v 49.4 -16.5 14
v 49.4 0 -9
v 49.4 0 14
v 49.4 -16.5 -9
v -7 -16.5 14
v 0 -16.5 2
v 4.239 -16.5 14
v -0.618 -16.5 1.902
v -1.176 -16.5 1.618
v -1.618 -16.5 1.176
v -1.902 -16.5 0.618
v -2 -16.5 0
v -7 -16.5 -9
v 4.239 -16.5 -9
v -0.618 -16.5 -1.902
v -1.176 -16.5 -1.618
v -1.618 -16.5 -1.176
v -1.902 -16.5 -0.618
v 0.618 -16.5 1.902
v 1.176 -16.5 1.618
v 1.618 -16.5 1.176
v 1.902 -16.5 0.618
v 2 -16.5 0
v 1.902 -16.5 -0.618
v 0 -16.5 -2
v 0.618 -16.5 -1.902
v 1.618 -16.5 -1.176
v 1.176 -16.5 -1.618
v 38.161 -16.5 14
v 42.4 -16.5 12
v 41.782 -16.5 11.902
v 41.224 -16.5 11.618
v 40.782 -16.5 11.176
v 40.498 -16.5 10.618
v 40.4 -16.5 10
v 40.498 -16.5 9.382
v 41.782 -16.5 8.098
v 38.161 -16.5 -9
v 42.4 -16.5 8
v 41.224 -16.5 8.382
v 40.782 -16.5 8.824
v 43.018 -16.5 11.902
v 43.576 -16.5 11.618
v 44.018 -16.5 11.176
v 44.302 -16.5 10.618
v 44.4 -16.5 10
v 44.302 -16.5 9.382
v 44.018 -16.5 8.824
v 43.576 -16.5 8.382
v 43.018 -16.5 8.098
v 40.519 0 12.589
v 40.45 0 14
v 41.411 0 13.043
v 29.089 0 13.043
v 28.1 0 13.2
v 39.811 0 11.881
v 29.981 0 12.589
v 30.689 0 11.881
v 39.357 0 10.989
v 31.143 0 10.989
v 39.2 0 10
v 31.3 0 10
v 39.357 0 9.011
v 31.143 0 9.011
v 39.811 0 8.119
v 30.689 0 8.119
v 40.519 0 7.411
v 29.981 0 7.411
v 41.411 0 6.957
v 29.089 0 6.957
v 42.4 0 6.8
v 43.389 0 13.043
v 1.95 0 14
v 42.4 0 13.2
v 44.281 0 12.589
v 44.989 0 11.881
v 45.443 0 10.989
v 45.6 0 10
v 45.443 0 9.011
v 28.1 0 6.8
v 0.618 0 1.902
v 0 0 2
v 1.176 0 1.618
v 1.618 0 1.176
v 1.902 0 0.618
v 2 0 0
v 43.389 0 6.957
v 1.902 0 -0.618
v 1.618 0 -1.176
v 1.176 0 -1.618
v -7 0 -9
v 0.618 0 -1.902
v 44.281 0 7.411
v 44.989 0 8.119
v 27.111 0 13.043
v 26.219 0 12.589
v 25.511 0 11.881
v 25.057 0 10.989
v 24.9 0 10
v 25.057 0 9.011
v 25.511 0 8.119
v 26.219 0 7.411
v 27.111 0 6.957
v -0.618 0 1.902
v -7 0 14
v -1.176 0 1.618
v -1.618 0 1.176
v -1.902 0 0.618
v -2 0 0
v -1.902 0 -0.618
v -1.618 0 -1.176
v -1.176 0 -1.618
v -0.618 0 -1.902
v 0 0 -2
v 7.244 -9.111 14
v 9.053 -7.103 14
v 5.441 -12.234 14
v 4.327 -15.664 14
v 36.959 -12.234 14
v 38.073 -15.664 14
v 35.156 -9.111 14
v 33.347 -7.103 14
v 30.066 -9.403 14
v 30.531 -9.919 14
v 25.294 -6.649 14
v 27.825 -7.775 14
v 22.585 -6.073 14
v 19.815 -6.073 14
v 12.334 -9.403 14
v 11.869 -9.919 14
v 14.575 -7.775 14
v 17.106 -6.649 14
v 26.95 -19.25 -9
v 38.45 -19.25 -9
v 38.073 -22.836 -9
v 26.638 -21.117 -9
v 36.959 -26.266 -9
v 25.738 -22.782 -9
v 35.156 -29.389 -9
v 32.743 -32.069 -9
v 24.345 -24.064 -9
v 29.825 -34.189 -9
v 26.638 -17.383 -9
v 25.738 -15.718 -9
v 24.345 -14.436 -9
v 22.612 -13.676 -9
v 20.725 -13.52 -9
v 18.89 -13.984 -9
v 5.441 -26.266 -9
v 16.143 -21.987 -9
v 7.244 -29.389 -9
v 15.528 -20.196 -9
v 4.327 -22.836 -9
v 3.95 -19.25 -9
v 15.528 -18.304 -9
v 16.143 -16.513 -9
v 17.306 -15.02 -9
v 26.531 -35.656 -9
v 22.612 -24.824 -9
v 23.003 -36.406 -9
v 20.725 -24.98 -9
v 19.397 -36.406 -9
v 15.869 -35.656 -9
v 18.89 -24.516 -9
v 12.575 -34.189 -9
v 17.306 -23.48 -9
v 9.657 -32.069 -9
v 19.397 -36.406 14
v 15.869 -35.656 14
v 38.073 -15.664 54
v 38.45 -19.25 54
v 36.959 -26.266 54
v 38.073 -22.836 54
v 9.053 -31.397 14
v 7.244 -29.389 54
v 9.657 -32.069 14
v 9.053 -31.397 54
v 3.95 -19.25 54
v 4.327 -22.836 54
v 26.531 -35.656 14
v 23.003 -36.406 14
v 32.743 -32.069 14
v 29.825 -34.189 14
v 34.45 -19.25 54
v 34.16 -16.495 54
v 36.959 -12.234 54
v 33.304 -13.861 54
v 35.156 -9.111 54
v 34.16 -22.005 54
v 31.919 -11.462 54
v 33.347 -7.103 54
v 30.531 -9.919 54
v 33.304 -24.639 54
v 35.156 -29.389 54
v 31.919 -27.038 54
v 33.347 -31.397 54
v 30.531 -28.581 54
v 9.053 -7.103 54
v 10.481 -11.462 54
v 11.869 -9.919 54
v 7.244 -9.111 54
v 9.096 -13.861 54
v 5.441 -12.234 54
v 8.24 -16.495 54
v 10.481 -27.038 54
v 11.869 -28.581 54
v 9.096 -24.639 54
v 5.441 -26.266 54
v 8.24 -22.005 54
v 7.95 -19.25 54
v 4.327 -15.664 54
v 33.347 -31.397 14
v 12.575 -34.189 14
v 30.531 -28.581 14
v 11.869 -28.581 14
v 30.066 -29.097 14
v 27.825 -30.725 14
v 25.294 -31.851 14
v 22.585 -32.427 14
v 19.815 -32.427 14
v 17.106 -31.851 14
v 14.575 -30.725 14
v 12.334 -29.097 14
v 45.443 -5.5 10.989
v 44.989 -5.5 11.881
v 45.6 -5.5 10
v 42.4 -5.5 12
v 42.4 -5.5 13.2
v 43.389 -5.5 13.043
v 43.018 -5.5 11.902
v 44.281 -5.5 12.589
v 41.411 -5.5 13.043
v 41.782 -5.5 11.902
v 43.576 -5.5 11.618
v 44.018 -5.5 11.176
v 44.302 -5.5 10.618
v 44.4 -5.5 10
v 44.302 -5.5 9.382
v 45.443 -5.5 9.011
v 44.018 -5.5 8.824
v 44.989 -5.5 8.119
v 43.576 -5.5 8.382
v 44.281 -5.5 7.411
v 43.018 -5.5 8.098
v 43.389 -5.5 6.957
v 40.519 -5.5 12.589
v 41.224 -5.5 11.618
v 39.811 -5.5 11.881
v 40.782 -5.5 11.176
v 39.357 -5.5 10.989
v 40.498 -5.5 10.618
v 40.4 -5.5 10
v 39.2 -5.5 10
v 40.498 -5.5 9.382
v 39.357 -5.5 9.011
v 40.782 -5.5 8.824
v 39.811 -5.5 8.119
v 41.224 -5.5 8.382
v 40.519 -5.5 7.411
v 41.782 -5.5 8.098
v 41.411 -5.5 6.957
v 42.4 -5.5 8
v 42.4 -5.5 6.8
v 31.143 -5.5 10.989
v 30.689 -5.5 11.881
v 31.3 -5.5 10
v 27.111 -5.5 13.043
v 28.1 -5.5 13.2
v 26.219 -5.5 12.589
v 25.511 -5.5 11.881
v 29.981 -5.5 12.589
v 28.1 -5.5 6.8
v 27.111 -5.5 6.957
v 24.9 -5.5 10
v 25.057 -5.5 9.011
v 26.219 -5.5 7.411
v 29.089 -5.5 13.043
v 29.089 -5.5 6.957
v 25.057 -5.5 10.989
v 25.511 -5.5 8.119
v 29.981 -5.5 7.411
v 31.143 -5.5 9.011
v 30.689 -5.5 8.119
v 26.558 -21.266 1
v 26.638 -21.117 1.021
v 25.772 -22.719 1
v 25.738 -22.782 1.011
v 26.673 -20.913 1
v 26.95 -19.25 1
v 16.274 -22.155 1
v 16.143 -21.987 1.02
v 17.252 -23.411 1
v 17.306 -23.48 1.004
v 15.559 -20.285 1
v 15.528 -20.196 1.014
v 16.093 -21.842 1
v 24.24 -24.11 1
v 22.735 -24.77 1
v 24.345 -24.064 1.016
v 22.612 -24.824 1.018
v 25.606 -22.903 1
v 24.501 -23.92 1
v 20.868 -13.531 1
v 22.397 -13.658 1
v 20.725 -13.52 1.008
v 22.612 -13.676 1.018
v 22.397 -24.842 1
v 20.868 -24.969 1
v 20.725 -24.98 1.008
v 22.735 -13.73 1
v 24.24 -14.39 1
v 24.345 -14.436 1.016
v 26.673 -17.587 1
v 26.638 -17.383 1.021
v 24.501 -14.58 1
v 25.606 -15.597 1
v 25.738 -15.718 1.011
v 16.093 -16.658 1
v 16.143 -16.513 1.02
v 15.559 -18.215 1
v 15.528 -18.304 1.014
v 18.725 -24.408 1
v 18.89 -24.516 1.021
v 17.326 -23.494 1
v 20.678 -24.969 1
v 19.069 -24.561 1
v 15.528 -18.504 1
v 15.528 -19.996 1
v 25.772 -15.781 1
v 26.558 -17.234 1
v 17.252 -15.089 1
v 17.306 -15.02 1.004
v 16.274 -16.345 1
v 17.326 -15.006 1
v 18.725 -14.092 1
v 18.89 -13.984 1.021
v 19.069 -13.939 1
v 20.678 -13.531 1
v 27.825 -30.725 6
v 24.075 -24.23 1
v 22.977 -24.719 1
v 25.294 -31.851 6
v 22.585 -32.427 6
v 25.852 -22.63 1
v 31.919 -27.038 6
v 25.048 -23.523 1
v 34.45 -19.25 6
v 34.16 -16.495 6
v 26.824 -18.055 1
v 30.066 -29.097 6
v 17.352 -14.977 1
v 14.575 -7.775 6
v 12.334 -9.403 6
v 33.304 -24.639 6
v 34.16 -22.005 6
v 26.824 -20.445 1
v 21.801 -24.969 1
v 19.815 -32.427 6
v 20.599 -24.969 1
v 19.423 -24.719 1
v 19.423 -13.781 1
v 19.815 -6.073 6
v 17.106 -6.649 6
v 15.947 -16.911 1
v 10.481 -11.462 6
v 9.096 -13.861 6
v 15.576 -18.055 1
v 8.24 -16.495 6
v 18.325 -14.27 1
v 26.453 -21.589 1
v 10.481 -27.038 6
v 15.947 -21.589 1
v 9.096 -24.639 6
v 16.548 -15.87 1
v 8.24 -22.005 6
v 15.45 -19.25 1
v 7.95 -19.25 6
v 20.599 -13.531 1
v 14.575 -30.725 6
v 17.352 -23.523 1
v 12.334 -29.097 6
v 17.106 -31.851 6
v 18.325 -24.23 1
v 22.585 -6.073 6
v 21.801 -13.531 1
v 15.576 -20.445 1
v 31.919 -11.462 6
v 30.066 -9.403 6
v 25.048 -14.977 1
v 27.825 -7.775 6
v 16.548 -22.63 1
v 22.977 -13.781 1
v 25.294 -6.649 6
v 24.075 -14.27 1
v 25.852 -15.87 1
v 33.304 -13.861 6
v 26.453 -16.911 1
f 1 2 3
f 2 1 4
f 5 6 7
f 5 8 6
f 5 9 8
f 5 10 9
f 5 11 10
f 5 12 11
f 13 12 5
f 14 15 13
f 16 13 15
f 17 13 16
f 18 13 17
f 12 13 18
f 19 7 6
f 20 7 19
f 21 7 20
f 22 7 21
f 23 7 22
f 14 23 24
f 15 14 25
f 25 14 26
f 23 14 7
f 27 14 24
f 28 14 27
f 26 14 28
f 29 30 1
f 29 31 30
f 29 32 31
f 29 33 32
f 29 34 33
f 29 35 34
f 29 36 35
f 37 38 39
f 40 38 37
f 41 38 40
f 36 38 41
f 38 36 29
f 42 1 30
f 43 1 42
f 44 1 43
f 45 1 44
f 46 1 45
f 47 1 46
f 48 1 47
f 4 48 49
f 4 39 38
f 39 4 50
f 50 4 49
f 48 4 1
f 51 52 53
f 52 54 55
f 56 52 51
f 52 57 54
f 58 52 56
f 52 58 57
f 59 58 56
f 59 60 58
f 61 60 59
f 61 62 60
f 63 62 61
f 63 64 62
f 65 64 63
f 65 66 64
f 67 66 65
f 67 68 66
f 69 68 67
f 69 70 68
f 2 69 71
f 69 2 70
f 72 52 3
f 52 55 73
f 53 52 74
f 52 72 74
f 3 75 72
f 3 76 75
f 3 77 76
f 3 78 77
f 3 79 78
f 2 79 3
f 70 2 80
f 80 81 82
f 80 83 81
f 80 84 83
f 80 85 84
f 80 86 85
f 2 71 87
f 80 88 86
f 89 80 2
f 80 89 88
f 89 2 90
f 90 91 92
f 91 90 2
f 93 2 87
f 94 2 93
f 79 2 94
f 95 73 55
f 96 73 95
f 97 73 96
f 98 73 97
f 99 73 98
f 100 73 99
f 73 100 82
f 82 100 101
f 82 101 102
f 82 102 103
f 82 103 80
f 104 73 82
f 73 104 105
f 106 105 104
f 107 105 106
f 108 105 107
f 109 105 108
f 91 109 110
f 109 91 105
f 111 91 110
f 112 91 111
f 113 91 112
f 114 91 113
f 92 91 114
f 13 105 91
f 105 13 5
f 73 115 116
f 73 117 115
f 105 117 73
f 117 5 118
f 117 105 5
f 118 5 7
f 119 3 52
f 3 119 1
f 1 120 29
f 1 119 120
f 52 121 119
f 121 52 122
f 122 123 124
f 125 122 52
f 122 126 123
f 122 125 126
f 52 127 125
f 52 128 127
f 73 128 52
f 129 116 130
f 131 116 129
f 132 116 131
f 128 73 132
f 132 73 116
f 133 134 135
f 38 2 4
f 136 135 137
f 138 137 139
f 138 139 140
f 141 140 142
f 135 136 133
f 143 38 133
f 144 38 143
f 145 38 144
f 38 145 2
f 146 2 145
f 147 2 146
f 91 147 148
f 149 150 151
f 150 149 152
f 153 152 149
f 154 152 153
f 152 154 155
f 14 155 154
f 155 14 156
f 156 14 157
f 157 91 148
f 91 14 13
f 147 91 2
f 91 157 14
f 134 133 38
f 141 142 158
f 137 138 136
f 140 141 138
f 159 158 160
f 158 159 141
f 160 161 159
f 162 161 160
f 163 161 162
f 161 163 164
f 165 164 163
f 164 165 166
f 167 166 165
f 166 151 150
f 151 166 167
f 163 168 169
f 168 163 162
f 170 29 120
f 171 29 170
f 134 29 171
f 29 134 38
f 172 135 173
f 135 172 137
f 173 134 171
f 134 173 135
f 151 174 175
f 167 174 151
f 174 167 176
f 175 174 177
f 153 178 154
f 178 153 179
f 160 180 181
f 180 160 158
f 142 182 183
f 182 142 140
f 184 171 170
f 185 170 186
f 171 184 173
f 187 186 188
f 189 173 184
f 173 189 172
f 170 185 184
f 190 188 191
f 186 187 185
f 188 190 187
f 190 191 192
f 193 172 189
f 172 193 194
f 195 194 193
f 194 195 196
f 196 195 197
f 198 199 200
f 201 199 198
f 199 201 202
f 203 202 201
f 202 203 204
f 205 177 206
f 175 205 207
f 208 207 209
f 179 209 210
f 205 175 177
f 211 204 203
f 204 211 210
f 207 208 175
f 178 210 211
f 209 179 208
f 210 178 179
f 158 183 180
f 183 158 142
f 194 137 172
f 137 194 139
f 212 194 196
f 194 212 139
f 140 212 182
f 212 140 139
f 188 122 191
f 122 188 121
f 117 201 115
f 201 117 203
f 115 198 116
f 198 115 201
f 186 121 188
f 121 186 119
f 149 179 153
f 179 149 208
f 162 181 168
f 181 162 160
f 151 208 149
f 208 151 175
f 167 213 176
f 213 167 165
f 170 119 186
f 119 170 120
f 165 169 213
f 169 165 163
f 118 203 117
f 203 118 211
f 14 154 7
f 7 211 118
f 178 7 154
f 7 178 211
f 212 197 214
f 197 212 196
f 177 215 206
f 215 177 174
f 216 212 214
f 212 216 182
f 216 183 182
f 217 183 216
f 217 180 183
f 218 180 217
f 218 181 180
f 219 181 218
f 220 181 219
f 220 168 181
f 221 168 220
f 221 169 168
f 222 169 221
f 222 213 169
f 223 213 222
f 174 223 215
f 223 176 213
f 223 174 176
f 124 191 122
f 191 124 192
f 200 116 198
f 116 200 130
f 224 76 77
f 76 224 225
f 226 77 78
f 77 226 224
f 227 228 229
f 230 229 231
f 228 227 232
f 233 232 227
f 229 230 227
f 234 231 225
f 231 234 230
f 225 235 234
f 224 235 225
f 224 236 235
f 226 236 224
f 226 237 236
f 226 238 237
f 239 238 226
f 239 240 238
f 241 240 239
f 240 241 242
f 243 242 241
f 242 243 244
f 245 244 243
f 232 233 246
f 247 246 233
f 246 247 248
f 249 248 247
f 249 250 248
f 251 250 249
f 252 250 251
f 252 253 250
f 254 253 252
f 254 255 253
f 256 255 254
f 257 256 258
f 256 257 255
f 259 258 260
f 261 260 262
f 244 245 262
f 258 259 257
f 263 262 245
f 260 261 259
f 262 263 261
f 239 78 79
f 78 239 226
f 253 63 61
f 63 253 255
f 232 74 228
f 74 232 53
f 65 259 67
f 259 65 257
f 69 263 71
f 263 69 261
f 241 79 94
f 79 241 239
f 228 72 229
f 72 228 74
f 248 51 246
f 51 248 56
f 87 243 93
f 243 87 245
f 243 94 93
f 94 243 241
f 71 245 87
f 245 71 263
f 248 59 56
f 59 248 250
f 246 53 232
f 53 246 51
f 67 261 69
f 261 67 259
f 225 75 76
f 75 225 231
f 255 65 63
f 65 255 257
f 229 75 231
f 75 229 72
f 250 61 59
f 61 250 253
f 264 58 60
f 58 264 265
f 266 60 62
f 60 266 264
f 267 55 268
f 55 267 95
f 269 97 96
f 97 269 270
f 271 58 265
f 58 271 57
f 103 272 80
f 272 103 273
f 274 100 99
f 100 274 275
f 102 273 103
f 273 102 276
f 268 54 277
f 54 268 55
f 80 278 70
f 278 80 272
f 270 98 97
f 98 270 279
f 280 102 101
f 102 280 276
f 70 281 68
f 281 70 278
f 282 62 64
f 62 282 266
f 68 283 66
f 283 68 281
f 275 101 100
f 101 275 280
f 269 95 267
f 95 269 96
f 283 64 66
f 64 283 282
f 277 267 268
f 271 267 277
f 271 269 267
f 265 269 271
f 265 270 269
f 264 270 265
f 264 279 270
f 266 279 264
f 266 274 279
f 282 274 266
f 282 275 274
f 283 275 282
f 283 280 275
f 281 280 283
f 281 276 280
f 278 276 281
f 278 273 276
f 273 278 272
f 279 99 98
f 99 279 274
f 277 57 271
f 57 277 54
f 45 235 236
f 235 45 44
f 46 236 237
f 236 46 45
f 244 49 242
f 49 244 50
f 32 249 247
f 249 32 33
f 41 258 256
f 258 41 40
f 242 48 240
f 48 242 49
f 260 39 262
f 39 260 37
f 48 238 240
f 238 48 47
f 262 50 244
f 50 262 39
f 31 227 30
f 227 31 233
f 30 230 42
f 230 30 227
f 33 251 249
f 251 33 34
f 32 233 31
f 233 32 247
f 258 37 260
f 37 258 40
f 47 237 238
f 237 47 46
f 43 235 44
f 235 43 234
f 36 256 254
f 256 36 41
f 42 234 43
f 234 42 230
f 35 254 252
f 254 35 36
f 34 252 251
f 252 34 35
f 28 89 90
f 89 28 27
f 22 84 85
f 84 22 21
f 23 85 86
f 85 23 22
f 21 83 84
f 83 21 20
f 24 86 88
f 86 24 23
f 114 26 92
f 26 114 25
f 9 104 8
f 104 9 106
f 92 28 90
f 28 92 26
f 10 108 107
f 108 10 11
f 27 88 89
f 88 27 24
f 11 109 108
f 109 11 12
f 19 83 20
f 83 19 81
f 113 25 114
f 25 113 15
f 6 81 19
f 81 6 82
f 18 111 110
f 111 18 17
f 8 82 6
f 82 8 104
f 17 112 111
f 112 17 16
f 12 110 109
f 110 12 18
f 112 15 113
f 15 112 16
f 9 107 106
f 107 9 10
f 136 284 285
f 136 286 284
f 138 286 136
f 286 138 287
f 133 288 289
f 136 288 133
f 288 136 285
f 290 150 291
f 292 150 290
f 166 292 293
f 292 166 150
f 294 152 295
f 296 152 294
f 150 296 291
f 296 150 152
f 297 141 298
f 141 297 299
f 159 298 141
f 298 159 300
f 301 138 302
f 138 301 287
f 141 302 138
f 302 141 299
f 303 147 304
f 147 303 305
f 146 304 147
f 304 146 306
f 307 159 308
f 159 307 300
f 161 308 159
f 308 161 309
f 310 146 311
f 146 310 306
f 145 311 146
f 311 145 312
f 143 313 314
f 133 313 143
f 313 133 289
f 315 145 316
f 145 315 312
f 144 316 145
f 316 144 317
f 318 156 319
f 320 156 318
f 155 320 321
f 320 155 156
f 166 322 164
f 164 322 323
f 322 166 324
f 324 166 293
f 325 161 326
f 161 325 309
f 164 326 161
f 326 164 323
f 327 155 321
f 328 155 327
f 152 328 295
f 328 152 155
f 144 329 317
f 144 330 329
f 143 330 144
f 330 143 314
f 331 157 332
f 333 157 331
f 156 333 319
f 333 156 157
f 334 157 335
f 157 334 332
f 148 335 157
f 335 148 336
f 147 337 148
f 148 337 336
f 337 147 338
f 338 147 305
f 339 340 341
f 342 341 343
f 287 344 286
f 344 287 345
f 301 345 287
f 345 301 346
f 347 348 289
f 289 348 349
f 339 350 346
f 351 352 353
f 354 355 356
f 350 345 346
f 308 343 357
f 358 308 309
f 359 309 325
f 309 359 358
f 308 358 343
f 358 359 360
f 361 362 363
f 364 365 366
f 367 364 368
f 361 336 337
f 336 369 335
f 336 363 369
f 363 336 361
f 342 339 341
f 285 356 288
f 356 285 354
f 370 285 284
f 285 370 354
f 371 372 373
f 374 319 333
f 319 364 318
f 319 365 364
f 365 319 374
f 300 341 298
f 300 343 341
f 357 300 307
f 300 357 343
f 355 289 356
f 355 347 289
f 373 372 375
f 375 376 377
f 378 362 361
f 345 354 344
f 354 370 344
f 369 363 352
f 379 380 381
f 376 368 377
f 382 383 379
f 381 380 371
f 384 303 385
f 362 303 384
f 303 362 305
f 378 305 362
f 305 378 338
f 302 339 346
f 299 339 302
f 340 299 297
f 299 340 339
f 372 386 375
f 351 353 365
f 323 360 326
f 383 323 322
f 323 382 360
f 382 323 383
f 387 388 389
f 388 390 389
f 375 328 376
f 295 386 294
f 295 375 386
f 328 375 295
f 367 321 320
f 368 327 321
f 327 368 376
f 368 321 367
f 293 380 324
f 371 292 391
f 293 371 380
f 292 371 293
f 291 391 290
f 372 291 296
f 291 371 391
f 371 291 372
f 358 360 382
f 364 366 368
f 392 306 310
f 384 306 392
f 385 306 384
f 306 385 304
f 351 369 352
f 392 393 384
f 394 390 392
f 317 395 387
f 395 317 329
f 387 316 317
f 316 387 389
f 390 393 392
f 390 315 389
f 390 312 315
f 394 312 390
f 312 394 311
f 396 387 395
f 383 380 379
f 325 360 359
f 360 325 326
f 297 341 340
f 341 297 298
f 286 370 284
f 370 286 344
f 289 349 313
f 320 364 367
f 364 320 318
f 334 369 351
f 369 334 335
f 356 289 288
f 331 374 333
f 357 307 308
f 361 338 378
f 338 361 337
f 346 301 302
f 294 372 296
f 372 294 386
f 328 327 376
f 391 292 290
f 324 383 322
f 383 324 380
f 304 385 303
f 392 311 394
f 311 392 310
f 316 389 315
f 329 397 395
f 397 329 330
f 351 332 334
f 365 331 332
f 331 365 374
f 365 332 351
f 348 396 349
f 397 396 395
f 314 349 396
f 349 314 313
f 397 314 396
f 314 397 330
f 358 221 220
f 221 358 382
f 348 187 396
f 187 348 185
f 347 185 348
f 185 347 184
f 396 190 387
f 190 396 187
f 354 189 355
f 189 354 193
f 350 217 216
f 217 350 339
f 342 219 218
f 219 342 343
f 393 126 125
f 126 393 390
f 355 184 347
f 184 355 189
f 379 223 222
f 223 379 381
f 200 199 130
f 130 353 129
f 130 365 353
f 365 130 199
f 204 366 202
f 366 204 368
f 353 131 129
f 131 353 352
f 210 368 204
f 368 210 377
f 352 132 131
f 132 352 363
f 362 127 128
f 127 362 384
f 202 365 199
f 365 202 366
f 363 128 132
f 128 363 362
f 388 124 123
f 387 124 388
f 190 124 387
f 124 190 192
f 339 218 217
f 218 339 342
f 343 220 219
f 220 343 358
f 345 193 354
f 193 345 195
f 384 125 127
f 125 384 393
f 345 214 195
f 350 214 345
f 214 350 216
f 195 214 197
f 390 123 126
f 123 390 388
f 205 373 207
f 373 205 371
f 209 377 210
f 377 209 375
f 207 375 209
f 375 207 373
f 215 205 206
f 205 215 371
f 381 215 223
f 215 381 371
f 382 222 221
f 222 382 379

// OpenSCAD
screw1Height = 35; A = 35;
screw4Height = 45; B = 45;
screwWidth = 42.4; C = 42.4;
screw4Depth = 4.5; D = 4.5;
cylinderDiameter = 25.5; E = 25.5;
nozzleRadius = 10.5; F = 10.5;
chamferHeight = 5; G = 5;
chamferToEnd = 36; H = 36;
screw4Width = 5.4; I = 5.4;
screwDiameter = 3; J = 3;
screwHeadDiameter = 5; K = 5;
screwMinHeight = 9; L = 9;
screwMaxHeight = 15; M = 15;
bumpDepth = 3; N = 3;
bumpDiameter = 9.5; O = 9.5;
bumpHeight = 57; P = 57;
bumpHeight2 = 18; Q = 18;
dist34 = 14.3; R = 14.3; // might be wrong

syringeZ = (E+9)/2 + 2;
sup = 40; // syringe support

rotate([90,0,0])
difference(){
    // main body object
    union(){
        // base plate
        translate([-J-4, -(A-Q-8), 0])cube([screwWidth+J*2+8, P-Q-16, L+D+3]);
        // syringe holder
        translate([C/2, P-A-8+sup, syringeZ])rotate([90,0,0])cylinder(h=P-Q-16+sup, d=E+9);
    }

    // raised screw hole 4
    translate([C, B-A, 0])cylinder($fn=20, h=D+1, d=I+1);
    // raised screw hole 3
    translate([C-R, B-A, 0])cylinder($fn=20, h=D+1, d=I+1);

    // through screw 4
    translate([C, B-A, 0])cylinder($fn=20, h=L+D+3, d=J+1);
    // through screw 1
    cylinder($fn=20, h=L+D+3, d=J+1);

    // nozzle
    translate([C/2, P/2, syringeZ])rotate([90,0,0])cylinder(h=P, d=F+1);
    // chamfer
    translate([C/2, H-A, syringeZ])rotate([-90,0,0])cylinder(h=G, d1=F+1, d2=E+1);
    // main syringe
    translate([C/2, H-A+G, syringeZ])rotate([-90,0,0])cylinder(h=P, d=E+1);
    
    translate([C/2,P-A-8,syringeZ])rotate([0,-45,0]){
        cube(sup);
        translate([-sup,0,-sup])cube(sup);
    }
}
